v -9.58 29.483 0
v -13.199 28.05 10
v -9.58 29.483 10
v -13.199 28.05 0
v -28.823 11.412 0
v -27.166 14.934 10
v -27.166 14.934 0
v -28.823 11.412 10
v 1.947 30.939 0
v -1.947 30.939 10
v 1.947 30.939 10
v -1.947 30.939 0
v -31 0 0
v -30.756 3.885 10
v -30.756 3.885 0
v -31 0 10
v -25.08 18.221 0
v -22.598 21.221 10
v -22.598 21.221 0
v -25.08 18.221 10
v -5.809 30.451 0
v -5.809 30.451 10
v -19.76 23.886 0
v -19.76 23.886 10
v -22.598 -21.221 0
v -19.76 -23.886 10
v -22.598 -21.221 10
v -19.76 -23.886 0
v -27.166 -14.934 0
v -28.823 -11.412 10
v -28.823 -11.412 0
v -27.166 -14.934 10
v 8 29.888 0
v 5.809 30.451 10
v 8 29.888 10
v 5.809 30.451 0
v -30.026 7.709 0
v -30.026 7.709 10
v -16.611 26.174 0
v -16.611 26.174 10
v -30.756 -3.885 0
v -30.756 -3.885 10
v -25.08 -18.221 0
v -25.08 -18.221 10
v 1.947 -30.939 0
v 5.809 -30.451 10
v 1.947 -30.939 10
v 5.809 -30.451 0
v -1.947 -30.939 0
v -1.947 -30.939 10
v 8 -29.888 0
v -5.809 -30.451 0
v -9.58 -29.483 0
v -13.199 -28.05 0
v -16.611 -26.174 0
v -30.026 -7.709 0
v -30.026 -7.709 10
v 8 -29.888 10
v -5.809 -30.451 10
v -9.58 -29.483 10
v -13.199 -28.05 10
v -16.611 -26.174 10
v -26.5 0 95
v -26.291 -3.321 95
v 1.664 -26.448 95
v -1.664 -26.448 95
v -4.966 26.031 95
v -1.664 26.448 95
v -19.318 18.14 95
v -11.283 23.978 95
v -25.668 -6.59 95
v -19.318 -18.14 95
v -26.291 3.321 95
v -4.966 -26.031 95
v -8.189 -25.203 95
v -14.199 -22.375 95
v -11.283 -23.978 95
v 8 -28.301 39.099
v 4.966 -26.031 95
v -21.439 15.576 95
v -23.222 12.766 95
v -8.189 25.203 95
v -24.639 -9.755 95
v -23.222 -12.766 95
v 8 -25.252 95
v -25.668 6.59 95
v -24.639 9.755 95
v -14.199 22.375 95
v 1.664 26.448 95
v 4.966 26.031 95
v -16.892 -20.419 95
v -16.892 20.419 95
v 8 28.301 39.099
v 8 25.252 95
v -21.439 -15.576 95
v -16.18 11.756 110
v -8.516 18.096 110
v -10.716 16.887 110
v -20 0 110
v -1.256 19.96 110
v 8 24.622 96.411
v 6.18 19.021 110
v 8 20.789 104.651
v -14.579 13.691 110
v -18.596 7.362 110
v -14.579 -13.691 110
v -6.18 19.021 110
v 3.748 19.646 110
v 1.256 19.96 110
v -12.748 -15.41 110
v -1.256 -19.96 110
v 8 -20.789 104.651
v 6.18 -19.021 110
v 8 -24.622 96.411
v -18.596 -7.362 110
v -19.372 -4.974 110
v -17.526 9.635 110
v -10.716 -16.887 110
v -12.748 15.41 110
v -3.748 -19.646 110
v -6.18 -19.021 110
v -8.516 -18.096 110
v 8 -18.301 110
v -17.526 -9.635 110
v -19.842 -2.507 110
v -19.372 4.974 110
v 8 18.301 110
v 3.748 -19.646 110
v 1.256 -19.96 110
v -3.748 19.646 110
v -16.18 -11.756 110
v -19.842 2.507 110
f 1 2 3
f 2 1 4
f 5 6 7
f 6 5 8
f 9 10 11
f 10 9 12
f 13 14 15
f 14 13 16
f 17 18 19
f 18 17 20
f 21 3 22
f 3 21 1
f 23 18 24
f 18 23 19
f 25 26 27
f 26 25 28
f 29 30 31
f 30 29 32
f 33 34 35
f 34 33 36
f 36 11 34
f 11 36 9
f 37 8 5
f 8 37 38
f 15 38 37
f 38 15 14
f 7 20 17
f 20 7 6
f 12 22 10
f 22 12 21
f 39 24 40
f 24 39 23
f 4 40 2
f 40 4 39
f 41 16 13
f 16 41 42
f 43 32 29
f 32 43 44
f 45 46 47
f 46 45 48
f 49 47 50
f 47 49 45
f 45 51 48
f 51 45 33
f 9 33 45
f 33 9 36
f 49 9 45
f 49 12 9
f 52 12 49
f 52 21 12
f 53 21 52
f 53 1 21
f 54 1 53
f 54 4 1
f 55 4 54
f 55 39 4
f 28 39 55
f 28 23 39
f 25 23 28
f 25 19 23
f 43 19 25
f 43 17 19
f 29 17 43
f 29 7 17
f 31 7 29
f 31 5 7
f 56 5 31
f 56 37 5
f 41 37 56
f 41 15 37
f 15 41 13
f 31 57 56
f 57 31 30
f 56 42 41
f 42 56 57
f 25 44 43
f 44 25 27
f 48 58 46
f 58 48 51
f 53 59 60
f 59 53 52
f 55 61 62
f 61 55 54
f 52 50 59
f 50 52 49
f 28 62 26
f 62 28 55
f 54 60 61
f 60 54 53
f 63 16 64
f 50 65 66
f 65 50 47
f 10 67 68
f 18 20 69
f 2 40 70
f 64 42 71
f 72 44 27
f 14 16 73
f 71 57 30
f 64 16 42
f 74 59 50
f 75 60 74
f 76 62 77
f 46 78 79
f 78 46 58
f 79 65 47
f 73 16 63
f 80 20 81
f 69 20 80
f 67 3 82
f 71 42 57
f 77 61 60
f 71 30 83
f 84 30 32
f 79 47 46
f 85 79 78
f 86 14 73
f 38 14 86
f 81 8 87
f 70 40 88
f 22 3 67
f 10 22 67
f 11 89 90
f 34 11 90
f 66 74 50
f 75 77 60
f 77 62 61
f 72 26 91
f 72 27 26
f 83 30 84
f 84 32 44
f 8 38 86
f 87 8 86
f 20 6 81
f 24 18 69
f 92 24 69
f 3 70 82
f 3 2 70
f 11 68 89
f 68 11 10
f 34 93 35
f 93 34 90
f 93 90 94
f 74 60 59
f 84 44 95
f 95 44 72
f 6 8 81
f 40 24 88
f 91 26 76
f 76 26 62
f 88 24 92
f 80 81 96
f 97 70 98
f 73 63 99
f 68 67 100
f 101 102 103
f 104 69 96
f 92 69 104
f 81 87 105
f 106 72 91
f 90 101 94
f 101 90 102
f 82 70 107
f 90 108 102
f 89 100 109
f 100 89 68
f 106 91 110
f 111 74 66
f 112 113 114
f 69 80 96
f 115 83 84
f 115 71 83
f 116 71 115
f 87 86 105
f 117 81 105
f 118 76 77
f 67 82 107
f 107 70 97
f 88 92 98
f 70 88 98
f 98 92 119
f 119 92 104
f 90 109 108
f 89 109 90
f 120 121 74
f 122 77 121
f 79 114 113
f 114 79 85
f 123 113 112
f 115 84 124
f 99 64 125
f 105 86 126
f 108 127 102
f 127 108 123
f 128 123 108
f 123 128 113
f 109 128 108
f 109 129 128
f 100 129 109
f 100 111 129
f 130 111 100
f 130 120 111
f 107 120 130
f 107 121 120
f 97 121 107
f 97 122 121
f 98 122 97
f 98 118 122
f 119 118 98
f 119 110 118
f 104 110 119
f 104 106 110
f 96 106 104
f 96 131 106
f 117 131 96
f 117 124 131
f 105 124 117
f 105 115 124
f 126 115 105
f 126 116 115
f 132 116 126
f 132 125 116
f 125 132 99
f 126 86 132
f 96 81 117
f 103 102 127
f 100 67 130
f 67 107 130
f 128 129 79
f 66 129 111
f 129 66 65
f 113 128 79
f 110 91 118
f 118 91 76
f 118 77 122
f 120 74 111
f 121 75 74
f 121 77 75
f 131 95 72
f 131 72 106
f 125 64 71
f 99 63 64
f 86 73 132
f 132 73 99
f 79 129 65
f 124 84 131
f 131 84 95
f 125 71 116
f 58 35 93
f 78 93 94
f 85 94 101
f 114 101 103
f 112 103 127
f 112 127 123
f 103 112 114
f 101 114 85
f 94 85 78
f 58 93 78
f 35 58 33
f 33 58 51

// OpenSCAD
$fn = 50;


difference() {
	union() {
		cylinder(h = 10, r = 31.0000000000);
		translate(v = [0, 0, 10.0000000000]) {
			cylinder(h = 85, r1 = 31.0000000000, r2 = 26.5000000000);
		}
		translate(v = [0, 0, 95.0000000000]) {
			cylinder(h = 15, r1 = 26.5000000000, r2 = 20.0000000000);
		}
	}
	union() {
		#translate(v = [8, -250.0000000000, 0]) {
			cube(size = [500, 500, 500]);
		}
		#translate(v = [8, -250.0000000000, 0]) {
			cube(size = [500, 500, 500]);
		}
		#translate(v = [8, -250.0000000000, 0]) {
			cube(size = [500, 500, 500]);
		}
	}
}
